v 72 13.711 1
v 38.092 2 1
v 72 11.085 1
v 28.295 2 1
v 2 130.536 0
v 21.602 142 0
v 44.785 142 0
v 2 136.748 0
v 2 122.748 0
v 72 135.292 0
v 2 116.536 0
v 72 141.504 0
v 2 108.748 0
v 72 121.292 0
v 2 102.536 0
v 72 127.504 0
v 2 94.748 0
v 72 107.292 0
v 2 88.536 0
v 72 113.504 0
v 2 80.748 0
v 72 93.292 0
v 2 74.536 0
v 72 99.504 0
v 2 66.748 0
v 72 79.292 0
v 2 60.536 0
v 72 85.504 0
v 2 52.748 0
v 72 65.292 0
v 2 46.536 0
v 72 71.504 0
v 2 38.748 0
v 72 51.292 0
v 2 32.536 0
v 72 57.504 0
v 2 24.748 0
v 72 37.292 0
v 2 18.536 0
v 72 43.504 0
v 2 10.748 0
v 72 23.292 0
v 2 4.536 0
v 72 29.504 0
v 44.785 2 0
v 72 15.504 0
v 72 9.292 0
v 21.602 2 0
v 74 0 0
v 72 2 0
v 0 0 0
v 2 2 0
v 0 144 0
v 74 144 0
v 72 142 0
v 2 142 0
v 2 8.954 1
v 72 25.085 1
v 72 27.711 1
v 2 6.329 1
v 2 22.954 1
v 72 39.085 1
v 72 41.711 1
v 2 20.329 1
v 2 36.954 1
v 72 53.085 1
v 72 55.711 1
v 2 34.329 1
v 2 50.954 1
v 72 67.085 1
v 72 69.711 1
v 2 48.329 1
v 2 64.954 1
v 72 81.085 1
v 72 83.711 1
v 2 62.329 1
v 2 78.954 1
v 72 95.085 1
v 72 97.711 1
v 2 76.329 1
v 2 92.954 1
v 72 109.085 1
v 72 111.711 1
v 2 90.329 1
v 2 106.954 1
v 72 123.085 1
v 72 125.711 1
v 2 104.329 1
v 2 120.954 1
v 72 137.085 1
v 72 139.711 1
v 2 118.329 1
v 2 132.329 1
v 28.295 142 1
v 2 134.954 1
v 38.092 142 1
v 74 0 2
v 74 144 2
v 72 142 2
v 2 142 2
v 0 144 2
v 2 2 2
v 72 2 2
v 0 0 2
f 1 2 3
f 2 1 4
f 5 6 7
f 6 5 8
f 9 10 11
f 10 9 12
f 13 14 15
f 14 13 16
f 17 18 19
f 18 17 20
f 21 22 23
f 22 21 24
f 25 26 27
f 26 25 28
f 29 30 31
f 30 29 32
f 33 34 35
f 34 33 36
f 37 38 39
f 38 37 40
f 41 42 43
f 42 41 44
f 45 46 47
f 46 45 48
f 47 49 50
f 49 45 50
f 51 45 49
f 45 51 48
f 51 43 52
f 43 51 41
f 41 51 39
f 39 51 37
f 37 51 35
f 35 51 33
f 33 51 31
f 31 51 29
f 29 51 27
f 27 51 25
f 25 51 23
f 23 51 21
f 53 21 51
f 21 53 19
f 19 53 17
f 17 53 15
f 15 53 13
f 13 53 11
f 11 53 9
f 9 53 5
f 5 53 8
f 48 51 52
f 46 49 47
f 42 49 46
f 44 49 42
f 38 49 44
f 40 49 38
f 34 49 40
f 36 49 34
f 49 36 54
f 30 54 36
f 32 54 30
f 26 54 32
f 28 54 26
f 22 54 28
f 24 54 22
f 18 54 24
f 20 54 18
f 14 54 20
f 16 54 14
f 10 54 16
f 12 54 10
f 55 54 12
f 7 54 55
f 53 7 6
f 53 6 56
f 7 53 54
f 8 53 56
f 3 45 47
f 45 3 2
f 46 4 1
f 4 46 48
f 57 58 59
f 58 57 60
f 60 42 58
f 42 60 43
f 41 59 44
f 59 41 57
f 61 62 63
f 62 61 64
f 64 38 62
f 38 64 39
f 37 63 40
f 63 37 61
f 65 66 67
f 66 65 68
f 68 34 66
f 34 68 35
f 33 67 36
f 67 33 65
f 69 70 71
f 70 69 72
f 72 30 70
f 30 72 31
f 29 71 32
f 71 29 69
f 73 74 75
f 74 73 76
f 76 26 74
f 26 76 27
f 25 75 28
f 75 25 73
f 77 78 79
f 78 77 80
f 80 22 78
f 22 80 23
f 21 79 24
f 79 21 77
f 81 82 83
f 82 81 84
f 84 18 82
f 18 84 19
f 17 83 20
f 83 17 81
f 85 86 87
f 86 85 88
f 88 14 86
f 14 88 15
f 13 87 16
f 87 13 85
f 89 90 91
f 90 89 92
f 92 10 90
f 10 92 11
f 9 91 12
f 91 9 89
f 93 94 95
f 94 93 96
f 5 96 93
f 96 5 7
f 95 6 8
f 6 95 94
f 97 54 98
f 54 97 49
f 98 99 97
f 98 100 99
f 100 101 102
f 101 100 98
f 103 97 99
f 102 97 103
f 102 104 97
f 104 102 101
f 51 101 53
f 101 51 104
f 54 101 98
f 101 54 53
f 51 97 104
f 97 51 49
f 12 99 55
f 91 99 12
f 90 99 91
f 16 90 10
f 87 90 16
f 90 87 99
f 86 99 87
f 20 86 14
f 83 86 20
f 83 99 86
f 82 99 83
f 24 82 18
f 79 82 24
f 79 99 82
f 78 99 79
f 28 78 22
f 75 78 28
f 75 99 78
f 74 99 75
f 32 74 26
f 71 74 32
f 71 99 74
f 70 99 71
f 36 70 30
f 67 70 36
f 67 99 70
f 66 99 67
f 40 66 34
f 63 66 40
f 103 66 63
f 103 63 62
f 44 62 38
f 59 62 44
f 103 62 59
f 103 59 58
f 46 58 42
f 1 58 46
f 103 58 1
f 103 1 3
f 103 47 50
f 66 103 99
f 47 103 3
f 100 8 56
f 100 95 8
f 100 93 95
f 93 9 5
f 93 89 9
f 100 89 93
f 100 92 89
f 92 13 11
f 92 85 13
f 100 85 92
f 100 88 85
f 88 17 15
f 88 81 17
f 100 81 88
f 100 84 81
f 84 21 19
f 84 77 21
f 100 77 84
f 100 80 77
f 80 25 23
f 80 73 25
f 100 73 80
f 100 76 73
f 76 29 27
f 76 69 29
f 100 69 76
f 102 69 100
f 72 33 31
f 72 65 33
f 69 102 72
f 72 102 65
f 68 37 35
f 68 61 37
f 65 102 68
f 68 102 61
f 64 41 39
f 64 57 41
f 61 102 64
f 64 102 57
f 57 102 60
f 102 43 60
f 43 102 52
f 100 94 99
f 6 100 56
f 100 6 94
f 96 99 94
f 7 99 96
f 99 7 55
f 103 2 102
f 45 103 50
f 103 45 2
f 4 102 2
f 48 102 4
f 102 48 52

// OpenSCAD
// file: blade.scad
module cut(size=30, angle=30, width=3){
    difference(){
        cube([size, width, 1]);
        rotate([angle, 0, 0]) {   
            cube([size, width, 1]);
        }        
    }
}

module blade(size=30, angle=30, width=6){
    union(){
        cut(size, angle, width/2);
        translate([0, width, 0]){
            mirror([0, 1, 0]) {
                cut(size, angle, width/2);
            }
        }
    }
}
// main file
use <blade.scad>


module top(width=74, length=144){
    height=2;
    wall=2;
    union(){
        difference(){
            cube([width, length, height]);
            translate([wall,wall,0]){
                cube([width-wall*2, length-wall*2, height]);    
            }
        }
    intersection(){
        cube([width, length, height]);
        for(i=[-10:14:140]){
            translate([0, i, 0]){
                rotate([0, 0, 15]){
                    blade(size=100);
                }
            }
        }
    }
    }
}

top();
